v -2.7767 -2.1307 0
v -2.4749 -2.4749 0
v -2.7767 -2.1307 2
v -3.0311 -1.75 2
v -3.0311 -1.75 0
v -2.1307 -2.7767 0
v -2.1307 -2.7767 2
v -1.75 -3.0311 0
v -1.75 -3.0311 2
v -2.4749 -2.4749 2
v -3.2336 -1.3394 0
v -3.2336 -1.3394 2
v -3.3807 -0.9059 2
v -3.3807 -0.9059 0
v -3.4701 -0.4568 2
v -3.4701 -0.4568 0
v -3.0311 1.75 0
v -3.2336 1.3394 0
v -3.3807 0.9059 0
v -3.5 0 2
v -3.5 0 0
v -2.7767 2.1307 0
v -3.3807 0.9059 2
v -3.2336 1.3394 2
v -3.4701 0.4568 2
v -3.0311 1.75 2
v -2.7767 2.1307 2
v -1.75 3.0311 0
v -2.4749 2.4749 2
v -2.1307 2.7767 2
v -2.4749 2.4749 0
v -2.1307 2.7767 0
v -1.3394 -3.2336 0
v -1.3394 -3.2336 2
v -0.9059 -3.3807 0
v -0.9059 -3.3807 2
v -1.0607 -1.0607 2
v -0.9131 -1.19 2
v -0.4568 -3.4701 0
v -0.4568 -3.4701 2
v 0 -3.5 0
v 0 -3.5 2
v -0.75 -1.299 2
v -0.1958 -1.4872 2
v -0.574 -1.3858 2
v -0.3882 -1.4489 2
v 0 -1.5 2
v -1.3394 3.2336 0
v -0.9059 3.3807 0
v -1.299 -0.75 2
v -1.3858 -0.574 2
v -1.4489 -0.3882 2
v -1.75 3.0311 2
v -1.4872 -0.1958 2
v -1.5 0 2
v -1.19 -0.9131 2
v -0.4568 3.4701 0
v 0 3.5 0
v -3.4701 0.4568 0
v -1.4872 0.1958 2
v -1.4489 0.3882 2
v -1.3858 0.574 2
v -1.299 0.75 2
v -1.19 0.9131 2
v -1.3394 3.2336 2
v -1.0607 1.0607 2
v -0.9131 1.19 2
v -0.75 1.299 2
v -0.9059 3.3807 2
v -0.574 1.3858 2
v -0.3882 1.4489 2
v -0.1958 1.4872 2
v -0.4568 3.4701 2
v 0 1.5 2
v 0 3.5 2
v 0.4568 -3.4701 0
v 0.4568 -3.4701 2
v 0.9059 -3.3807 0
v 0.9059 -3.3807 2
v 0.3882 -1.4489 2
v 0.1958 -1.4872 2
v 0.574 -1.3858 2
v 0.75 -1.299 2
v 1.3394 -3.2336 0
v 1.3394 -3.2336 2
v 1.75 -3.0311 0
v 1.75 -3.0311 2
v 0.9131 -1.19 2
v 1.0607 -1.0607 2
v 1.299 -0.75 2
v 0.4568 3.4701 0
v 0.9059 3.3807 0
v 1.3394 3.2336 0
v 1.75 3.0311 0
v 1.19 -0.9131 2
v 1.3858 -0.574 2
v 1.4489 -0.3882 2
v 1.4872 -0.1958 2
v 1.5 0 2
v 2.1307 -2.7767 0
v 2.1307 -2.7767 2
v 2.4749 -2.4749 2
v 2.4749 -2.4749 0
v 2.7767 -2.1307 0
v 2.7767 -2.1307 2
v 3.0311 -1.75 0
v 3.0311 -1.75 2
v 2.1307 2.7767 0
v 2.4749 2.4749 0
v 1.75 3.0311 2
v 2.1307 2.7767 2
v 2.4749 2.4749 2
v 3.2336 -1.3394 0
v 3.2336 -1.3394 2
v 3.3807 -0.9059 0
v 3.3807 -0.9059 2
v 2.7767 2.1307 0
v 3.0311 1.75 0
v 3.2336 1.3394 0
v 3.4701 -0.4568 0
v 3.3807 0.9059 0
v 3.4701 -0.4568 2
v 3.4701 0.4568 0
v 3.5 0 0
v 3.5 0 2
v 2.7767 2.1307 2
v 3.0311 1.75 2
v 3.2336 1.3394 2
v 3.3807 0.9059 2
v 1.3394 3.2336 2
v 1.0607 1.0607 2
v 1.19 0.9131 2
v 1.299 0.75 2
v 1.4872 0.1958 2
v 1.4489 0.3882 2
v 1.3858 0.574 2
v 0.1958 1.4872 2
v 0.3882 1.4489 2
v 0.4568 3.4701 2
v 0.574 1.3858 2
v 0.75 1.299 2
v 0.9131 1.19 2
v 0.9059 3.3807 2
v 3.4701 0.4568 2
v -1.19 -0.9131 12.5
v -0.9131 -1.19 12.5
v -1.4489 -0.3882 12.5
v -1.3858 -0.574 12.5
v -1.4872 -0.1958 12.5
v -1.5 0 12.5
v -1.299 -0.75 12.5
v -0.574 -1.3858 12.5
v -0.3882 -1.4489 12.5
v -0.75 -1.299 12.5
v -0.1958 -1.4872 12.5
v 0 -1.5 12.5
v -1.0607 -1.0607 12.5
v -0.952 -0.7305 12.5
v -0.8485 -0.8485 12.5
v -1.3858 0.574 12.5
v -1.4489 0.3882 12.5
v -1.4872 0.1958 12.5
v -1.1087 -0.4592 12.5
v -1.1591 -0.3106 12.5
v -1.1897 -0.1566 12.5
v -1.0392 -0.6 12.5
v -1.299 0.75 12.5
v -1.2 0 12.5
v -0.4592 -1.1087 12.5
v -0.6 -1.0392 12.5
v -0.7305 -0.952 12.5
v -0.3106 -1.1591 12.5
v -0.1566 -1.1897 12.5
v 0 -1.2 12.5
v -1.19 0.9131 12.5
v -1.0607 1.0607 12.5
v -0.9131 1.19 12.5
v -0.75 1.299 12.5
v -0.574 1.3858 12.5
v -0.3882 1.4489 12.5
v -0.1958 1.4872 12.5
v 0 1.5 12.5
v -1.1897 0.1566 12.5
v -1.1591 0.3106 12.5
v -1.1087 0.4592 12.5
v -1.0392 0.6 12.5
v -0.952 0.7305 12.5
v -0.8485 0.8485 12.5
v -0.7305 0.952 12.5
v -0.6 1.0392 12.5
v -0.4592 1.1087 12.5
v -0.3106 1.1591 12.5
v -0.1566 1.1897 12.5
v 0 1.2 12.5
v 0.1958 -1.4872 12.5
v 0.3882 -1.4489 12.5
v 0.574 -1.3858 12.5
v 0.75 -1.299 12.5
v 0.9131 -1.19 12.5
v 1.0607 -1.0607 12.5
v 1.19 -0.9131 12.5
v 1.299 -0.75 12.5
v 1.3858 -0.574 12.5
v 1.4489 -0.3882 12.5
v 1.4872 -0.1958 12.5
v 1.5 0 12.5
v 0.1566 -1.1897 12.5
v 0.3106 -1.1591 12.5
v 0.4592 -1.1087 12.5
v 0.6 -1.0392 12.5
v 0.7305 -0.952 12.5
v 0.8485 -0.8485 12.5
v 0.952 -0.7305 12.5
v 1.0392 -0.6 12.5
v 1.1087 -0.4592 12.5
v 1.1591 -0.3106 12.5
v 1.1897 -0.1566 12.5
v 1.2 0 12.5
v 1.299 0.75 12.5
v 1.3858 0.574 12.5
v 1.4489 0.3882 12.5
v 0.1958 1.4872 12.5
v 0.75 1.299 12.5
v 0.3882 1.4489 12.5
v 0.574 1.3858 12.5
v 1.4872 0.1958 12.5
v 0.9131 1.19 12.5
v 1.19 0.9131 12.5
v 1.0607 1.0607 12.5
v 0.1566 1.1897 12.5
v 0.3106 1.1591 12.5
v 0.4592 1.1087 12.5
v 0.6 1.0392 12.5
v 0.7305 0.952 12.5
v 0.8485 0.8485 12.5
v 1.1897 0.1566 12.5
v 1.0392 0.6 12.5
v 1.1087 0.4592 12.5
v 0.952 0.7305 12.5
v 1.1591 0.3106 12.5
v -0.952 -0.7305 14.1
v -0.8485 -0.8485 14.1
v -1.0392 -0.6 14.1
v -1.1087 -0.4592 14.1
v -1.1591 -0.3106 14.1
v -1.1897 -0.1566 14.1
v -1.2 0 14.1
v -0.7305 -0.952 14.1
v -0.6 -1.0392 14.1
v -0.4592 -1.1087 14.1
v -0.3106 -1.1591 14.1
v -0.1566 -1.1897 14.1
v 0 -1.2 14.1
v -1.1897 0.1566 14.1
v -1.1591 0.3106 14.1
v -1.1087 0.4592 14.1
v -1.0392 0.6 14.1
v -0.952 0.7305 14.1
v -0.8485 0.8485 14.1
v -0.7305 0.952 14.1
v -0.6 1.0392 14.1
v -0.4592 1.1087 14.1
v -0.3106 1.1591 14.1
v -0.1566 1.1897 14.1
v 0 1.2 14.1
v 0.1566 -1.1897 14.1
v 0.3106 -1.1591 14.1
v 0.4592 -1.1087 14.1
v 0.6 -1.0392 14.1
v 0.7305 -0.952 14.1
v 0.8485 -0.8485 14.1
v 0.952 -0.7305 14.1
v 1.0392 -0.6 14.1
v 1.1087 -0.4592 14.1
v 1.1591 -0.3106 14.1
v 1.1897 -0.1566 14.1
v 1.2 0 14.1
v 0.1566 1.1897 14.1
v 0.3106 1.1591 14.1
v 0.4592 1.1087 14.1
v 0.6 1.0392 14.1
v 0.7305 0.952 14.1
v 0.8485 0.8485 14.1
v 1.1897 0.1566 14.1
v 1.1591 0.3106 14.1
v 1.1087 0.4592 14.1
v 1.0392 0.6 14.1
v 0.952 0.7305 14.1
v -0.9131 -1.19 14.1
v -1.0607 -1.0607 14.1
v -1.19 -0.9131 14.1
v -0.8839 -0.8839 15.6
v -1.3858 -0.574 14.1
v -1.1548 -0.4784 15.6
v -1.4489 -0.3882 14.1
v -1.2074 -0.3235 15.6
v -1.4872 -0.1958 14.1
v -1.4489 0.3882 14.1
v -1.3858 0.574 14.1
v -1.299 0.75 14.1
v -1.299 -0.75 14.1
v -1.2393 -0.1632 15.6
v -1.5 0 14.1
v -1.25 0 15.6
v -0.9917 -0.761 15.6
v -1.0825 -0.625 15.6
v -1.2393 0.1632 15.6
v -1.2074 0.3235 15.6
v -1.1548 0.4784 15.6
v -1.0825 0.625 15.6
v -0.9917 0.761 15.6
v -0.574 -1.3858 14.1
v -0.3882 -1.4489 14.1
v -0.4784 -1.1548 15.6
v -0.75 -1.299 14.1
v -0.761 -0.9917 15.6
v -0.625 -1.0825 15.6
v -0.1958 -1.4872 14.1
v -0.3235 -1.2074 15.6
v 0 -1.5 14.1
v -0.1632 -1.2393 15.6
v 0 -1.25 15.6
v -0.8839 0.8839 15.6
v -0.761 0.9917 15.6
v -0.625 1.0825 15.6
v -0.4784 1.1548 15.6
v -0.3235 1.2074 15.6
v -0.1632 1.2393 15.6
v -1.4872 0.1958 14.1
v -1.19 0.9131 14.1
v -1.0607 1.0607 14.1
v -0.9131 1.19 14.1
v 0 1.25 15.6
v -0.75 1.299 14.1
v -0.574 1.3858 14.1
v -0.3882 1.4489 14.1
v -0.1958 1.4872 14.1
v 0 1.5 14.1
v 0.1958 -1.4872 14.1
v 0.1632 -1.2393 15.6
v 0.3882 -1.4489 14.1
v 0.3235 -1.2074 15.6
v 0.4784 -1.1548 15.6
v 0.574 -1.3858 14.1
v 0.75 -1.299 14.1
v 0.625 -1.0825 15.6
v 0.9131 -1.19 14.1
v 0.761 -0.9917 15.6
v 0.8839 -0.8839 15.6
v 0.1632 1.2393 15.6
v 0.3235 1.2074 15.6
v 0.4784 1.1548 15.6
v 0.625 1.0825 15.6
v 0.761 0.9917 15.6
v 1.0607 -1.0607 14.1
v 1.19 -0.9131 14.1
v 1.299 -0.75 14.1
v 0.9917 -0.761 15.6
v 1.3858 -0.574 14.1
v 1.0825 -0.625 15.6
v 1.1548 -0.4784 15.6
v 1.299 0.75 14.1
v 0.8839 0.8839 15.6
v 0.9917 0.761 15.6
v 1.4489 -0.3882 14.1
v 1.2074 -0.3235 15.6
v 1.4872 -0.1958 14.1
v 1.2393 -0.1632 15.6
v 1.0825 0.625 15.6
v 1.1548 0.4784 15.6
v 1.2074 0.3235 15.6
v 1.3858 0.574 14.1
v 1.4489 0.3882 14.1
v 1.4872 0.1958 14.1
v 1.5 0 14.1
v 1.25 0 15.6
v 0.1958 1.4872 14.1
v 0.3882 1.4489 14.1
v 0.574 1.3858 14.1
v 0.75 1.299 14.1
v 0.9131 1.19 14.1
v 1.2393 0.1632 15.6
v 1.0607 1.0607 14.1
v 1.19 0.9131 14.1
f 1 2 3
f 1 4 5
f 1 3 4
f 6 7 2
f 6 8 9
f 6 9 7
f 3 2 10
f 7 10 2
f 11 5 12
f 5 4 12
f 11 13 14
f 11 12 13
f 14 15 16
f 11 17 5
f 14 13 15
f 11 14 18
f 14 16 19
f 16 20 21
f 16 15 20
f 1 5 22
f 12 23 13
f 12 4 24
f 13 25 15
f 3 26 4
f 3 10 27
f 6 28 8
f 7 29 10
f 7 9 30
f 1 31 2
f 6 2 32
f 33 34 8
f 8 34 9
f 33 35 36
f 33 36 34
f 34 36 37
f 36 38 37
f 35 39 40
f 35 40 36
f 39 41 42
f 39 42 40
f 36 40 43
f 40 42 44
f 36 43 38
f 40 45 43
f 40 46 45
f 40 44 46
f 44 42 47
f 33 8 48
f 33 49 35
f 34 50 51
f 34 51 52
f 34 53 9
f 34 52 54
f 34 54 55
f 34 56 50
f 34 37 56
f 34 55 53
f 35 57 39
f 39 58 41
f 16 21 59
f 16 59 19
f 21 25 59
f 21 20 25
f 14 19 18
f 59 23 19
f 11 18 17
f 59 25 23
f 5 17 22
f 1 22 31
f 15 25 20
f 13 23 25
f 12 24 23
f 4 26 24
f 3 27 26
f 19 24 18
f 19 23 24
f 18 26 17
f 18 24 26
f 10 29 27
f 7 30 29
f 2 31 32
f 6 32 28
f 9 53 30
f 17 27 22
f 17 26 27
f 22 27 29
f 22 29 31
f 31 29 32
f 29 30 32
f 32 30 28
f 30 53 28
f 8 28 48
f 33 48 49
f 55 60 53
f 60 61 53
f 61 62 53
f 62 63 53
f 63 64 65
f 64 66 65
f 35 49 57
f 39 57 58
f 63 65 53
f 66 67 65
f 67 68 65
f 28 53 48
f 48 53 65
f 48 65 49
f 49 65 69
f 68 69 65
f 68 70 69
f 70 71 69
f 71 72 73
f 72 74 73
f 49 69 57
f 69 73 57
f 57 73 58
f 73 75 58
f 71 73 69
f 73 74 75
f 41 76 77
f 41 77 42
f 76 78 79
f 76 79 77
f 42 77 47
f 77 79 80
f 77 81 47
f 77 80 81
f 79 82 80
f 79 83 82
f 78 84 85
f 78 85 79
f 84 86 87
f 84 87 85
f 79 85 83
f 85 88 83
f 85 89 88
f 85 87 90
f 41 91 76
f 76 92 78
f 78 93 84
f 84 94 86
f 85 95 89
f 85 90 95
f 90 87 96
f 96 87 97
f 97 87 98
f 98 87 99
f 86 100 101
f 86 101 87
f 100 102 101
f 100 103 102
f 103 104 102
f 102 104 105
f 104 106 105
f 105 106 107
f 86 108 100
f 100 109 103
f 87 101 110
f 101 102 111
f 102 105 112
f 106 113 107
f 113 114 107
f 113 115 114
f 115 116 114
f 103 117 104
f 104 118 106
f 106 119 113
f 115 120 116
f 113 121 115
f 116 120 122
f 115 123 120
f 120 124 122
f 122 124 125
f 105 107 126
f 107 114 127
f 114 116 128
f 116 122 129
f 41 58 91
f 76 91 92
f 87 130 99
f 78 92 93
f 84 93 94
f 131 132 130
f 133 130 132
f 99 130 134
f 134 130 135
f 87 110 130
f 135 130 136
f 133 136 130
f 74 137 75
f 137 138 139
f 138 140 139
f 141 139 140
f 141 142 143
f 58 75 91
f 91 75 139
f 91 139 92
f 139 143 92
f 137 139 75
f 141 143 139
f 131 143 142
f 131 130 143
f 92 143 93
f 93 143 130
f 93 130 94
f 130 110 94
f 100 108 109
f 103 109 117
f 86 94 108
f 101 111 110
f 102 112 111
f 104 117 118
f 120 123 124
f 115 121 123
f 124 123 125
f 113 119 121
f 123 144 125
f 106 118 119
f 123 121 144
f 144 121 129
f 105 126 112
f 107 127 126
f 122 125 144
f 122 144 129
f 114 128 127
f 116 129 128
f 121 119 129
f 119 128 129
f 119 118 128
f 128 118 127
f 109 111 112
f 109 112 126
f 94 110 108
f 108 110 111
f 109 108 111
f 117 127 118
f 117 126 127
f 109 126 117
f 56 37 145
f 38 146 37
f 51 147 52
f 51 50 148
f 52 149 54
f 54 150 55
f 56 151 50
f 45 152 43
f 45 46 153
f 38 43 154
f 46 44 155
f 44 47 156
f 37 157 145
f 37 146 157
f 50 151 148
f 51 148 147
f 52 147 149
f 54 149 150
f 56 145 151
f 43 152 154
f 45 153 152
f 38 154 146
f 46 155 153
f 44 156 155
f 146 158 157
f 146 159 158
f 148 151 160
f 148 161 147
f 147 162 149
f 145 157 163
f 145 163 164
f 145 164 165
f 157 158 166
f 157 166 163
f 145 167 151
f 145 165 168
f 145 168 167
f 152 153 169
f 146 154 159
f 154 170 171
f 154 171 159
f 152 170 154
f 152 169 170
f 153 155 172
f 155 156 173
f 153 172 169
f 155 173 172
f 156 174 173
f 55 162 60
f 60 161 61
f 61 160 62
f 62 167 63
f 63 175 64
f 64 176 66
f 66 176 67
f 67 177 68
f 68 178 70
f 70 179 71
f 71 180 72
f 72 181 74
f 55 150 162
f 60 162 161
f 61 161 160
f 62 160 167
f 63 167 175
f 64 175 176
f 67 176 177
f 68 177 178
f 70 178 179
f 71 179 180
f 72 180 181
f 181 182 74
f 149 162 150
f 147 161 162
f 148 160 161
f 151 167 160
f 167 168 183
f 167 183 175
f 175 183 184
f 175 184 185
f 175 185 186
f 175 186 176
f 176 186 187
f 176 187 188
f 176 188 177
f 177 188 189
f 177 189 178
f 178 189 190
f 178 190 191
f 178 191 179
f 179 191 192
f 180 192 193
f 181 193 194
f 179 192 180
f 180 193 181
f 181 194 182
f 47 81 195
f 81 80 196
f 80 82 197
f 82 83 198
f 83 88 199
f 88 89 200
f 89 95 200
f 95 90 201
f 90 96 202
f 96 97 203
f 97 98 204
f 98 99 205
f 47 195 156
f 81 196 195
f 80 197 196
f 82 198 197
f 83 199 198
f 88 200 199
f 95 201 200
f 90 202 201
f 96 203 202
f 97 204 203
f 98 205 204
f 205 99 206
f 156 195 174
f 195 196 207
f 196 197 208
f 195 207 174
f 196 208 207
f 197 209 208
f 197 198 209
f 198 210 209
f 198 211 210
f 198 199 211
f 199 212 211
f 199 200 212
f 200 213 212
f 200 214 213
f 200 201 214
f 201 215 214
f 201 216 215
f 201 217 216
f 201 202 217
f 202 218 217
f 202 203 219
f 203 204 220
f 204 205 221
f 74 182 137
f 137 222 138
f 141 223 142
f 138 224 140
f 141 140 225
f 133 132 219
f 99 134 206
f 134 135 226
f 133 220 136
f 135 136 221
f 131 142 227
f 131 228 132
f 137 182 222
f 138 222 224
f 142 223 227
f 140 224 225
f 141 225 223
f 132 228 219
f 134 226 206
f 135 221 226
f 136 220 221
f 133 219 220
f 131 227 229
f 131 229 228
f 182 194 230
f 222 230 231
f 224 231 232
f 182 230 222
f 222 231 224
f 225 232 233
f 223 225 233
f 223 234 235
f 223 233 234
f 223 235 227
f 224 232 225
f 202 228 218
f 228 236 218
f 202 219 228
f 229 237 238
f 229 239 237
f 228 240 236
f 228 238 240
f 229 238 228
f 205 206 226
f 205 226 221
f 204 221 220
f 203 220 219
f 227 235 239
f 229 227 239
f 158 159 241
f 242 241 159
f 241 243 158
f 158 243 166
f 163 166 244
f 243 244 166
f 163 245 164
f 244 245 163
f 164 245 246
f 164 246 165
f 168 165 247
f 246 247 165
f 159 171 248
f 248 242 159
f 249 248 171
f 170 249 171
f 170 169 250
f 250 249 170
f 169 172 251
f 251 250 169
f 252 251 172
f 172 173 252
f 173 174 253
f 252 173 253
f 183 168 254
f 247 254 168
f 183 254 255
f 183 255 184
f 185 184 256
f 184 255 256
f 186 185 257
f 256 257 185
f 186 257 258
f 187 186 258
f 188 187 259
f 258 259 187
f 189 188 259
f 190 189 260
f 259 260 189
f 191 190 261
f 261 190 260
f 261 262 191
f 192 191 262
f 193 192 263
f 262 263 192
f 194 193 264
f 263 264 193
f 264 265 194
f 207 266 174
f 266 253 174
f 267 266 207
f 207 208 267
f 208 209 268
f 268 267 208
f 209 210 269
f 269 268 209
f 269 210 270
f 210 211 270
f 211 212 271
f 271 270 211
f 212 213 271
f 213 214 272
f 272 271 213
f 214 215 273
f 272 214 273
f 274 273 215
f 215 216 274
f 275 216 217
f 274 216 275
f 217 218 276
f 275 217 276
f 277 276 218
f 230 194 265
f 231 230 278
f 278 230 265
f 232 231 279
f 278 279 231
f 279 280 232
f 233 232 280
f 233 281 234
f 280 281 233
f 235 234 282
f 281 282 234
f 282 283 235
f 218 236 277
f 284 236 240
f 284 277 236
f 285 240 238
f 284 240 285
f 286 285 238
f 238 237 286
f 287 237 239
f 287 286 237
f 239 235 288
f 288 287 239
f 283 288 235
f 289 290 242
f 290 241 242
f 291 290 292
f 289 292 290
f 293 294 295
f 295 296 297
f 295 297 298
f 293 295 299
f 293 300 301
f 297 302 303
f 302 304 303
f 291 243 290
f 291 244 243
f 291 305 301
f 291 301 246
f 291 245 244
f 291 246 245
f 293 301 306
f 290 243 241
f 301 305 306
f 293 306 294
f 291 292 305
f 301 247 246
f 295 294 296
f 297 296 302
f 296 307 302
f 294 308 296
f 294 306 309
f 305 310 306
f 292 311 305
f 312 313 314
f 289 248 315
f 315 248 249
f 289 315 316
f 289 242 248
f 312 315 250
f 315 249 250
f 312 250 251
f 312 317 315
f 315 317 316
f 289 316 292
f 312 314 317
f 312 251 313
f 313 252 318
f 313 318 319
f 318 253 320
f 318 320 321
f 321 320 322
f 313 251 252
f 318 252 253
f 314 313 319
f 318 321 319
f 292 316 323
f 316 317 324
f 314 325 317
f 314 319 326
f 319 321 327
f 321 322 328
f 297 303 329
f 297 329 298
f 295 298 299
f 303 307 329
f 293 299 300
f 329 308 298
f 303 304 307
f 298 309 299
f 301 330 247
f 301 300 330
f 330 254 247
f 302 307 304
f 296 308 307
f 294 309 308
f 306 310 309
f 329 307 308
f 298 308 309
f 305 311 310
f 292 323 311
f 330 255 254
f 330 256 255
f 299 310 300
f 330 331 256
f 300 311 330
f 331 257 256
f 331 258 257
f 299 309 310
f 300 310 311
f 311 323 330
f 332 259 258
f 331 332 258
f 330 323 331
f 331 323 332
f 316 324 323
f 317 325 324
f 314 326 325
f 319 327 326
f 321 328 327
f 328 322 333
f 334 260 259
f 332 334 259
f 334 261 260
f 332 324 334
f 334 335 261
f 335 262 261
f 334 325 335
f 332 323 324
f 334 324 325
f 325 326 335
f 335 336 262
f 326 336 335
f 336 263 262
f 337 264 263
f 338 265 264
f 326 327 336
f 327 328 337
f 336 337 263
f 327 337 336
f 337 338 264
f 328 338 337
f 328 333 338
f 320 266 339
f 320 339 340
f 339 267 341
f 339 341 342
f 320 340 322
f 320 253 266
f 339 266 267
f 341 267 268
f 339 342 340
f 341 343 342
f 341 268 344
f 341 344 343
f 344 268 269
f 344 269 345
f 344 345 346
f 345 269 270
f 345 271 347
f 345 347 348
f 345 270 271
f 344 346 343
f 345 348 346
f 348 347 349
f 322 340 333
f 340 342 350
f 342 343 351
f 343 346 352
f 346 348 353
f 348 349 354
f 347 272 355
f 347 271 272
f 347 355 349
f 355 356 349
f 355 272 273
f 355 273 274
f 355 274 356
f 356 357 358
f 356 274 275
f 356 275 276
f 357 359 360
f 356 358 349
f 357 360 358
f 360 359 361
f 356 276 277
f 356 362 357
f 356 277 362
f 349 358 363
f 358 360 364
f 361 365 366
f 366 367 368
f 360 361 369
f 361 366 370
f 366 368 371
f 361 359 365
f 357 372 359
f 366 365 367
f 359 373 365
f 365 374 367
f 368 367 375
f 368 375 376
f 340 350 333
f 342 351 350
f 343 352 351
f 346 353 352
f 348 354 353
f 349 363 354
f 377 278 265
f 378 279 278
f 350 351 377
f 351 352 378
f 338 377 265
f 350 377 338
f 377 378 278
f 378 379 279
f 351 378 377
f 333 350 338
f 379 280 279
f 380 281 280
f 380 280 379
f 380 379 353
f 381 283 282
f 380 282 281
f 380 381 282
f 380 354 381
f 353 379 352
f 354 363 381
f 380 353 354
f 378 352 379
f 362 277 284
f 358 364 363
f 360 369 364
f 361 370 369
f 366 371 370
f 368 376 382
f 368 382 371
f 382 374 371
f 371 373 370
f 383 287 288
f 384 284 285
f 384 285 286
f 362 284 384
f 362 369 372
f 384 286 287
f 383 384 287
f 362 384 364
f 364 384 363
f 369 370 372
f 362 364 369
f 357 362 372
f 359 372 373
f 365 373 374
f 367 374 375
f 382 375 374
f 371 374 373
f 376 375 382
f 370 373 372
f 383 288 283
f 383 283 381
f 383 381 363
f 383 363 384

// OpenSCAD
// EXPERIMENTAL all-printed smooth pivot/fastener for a 3.4 mm hole.
// Use with printed_joint_clip.scad. Hand-cycle only until physical strength,
// wear, clip retention and servo loads have been tested.
// Print upright with head on the bed, add a brim if needed.
$fn = 48;

joint_shaft_d = 3.0;
joint_grip_length = 10.5; // adjust to measured part + spacer stack
joint_head_d = 7.0;
joint_head_height = 2.0;
joint_groove_d = 2.4;
joint_groove_width = 1.6;
joint_tip_length = 1.5;

assert(joint_shaft_d >= 2.8 && joint_shaft_d <= 3.2);
assert(joint_groove_d < joint_shaft_d);
assert(joint_head_d > joint_shaft_d + 2);

module printed_joint_pin(grip = joint_grip_length) {
    union() {
        cylinder(d = joint_head_d, h = joint_head_height);
        translate([0, 0, joint_head_height])
            cylinder(d = joint_shaft_d, h = grip);
        translate([0, 0, joint_head_height + grip])
            cylinder(d = joint_groove_d, h = joint_groove_width);
        translate([0, 0, joint_head_height + grip
                         + joint_groove_width])
            cylinder(d1 = joint_shaft_d, d2 = joint_shaft_d - 0.5,
                     h = joint_tip_length);
    }
}

printed_joint_pin();
